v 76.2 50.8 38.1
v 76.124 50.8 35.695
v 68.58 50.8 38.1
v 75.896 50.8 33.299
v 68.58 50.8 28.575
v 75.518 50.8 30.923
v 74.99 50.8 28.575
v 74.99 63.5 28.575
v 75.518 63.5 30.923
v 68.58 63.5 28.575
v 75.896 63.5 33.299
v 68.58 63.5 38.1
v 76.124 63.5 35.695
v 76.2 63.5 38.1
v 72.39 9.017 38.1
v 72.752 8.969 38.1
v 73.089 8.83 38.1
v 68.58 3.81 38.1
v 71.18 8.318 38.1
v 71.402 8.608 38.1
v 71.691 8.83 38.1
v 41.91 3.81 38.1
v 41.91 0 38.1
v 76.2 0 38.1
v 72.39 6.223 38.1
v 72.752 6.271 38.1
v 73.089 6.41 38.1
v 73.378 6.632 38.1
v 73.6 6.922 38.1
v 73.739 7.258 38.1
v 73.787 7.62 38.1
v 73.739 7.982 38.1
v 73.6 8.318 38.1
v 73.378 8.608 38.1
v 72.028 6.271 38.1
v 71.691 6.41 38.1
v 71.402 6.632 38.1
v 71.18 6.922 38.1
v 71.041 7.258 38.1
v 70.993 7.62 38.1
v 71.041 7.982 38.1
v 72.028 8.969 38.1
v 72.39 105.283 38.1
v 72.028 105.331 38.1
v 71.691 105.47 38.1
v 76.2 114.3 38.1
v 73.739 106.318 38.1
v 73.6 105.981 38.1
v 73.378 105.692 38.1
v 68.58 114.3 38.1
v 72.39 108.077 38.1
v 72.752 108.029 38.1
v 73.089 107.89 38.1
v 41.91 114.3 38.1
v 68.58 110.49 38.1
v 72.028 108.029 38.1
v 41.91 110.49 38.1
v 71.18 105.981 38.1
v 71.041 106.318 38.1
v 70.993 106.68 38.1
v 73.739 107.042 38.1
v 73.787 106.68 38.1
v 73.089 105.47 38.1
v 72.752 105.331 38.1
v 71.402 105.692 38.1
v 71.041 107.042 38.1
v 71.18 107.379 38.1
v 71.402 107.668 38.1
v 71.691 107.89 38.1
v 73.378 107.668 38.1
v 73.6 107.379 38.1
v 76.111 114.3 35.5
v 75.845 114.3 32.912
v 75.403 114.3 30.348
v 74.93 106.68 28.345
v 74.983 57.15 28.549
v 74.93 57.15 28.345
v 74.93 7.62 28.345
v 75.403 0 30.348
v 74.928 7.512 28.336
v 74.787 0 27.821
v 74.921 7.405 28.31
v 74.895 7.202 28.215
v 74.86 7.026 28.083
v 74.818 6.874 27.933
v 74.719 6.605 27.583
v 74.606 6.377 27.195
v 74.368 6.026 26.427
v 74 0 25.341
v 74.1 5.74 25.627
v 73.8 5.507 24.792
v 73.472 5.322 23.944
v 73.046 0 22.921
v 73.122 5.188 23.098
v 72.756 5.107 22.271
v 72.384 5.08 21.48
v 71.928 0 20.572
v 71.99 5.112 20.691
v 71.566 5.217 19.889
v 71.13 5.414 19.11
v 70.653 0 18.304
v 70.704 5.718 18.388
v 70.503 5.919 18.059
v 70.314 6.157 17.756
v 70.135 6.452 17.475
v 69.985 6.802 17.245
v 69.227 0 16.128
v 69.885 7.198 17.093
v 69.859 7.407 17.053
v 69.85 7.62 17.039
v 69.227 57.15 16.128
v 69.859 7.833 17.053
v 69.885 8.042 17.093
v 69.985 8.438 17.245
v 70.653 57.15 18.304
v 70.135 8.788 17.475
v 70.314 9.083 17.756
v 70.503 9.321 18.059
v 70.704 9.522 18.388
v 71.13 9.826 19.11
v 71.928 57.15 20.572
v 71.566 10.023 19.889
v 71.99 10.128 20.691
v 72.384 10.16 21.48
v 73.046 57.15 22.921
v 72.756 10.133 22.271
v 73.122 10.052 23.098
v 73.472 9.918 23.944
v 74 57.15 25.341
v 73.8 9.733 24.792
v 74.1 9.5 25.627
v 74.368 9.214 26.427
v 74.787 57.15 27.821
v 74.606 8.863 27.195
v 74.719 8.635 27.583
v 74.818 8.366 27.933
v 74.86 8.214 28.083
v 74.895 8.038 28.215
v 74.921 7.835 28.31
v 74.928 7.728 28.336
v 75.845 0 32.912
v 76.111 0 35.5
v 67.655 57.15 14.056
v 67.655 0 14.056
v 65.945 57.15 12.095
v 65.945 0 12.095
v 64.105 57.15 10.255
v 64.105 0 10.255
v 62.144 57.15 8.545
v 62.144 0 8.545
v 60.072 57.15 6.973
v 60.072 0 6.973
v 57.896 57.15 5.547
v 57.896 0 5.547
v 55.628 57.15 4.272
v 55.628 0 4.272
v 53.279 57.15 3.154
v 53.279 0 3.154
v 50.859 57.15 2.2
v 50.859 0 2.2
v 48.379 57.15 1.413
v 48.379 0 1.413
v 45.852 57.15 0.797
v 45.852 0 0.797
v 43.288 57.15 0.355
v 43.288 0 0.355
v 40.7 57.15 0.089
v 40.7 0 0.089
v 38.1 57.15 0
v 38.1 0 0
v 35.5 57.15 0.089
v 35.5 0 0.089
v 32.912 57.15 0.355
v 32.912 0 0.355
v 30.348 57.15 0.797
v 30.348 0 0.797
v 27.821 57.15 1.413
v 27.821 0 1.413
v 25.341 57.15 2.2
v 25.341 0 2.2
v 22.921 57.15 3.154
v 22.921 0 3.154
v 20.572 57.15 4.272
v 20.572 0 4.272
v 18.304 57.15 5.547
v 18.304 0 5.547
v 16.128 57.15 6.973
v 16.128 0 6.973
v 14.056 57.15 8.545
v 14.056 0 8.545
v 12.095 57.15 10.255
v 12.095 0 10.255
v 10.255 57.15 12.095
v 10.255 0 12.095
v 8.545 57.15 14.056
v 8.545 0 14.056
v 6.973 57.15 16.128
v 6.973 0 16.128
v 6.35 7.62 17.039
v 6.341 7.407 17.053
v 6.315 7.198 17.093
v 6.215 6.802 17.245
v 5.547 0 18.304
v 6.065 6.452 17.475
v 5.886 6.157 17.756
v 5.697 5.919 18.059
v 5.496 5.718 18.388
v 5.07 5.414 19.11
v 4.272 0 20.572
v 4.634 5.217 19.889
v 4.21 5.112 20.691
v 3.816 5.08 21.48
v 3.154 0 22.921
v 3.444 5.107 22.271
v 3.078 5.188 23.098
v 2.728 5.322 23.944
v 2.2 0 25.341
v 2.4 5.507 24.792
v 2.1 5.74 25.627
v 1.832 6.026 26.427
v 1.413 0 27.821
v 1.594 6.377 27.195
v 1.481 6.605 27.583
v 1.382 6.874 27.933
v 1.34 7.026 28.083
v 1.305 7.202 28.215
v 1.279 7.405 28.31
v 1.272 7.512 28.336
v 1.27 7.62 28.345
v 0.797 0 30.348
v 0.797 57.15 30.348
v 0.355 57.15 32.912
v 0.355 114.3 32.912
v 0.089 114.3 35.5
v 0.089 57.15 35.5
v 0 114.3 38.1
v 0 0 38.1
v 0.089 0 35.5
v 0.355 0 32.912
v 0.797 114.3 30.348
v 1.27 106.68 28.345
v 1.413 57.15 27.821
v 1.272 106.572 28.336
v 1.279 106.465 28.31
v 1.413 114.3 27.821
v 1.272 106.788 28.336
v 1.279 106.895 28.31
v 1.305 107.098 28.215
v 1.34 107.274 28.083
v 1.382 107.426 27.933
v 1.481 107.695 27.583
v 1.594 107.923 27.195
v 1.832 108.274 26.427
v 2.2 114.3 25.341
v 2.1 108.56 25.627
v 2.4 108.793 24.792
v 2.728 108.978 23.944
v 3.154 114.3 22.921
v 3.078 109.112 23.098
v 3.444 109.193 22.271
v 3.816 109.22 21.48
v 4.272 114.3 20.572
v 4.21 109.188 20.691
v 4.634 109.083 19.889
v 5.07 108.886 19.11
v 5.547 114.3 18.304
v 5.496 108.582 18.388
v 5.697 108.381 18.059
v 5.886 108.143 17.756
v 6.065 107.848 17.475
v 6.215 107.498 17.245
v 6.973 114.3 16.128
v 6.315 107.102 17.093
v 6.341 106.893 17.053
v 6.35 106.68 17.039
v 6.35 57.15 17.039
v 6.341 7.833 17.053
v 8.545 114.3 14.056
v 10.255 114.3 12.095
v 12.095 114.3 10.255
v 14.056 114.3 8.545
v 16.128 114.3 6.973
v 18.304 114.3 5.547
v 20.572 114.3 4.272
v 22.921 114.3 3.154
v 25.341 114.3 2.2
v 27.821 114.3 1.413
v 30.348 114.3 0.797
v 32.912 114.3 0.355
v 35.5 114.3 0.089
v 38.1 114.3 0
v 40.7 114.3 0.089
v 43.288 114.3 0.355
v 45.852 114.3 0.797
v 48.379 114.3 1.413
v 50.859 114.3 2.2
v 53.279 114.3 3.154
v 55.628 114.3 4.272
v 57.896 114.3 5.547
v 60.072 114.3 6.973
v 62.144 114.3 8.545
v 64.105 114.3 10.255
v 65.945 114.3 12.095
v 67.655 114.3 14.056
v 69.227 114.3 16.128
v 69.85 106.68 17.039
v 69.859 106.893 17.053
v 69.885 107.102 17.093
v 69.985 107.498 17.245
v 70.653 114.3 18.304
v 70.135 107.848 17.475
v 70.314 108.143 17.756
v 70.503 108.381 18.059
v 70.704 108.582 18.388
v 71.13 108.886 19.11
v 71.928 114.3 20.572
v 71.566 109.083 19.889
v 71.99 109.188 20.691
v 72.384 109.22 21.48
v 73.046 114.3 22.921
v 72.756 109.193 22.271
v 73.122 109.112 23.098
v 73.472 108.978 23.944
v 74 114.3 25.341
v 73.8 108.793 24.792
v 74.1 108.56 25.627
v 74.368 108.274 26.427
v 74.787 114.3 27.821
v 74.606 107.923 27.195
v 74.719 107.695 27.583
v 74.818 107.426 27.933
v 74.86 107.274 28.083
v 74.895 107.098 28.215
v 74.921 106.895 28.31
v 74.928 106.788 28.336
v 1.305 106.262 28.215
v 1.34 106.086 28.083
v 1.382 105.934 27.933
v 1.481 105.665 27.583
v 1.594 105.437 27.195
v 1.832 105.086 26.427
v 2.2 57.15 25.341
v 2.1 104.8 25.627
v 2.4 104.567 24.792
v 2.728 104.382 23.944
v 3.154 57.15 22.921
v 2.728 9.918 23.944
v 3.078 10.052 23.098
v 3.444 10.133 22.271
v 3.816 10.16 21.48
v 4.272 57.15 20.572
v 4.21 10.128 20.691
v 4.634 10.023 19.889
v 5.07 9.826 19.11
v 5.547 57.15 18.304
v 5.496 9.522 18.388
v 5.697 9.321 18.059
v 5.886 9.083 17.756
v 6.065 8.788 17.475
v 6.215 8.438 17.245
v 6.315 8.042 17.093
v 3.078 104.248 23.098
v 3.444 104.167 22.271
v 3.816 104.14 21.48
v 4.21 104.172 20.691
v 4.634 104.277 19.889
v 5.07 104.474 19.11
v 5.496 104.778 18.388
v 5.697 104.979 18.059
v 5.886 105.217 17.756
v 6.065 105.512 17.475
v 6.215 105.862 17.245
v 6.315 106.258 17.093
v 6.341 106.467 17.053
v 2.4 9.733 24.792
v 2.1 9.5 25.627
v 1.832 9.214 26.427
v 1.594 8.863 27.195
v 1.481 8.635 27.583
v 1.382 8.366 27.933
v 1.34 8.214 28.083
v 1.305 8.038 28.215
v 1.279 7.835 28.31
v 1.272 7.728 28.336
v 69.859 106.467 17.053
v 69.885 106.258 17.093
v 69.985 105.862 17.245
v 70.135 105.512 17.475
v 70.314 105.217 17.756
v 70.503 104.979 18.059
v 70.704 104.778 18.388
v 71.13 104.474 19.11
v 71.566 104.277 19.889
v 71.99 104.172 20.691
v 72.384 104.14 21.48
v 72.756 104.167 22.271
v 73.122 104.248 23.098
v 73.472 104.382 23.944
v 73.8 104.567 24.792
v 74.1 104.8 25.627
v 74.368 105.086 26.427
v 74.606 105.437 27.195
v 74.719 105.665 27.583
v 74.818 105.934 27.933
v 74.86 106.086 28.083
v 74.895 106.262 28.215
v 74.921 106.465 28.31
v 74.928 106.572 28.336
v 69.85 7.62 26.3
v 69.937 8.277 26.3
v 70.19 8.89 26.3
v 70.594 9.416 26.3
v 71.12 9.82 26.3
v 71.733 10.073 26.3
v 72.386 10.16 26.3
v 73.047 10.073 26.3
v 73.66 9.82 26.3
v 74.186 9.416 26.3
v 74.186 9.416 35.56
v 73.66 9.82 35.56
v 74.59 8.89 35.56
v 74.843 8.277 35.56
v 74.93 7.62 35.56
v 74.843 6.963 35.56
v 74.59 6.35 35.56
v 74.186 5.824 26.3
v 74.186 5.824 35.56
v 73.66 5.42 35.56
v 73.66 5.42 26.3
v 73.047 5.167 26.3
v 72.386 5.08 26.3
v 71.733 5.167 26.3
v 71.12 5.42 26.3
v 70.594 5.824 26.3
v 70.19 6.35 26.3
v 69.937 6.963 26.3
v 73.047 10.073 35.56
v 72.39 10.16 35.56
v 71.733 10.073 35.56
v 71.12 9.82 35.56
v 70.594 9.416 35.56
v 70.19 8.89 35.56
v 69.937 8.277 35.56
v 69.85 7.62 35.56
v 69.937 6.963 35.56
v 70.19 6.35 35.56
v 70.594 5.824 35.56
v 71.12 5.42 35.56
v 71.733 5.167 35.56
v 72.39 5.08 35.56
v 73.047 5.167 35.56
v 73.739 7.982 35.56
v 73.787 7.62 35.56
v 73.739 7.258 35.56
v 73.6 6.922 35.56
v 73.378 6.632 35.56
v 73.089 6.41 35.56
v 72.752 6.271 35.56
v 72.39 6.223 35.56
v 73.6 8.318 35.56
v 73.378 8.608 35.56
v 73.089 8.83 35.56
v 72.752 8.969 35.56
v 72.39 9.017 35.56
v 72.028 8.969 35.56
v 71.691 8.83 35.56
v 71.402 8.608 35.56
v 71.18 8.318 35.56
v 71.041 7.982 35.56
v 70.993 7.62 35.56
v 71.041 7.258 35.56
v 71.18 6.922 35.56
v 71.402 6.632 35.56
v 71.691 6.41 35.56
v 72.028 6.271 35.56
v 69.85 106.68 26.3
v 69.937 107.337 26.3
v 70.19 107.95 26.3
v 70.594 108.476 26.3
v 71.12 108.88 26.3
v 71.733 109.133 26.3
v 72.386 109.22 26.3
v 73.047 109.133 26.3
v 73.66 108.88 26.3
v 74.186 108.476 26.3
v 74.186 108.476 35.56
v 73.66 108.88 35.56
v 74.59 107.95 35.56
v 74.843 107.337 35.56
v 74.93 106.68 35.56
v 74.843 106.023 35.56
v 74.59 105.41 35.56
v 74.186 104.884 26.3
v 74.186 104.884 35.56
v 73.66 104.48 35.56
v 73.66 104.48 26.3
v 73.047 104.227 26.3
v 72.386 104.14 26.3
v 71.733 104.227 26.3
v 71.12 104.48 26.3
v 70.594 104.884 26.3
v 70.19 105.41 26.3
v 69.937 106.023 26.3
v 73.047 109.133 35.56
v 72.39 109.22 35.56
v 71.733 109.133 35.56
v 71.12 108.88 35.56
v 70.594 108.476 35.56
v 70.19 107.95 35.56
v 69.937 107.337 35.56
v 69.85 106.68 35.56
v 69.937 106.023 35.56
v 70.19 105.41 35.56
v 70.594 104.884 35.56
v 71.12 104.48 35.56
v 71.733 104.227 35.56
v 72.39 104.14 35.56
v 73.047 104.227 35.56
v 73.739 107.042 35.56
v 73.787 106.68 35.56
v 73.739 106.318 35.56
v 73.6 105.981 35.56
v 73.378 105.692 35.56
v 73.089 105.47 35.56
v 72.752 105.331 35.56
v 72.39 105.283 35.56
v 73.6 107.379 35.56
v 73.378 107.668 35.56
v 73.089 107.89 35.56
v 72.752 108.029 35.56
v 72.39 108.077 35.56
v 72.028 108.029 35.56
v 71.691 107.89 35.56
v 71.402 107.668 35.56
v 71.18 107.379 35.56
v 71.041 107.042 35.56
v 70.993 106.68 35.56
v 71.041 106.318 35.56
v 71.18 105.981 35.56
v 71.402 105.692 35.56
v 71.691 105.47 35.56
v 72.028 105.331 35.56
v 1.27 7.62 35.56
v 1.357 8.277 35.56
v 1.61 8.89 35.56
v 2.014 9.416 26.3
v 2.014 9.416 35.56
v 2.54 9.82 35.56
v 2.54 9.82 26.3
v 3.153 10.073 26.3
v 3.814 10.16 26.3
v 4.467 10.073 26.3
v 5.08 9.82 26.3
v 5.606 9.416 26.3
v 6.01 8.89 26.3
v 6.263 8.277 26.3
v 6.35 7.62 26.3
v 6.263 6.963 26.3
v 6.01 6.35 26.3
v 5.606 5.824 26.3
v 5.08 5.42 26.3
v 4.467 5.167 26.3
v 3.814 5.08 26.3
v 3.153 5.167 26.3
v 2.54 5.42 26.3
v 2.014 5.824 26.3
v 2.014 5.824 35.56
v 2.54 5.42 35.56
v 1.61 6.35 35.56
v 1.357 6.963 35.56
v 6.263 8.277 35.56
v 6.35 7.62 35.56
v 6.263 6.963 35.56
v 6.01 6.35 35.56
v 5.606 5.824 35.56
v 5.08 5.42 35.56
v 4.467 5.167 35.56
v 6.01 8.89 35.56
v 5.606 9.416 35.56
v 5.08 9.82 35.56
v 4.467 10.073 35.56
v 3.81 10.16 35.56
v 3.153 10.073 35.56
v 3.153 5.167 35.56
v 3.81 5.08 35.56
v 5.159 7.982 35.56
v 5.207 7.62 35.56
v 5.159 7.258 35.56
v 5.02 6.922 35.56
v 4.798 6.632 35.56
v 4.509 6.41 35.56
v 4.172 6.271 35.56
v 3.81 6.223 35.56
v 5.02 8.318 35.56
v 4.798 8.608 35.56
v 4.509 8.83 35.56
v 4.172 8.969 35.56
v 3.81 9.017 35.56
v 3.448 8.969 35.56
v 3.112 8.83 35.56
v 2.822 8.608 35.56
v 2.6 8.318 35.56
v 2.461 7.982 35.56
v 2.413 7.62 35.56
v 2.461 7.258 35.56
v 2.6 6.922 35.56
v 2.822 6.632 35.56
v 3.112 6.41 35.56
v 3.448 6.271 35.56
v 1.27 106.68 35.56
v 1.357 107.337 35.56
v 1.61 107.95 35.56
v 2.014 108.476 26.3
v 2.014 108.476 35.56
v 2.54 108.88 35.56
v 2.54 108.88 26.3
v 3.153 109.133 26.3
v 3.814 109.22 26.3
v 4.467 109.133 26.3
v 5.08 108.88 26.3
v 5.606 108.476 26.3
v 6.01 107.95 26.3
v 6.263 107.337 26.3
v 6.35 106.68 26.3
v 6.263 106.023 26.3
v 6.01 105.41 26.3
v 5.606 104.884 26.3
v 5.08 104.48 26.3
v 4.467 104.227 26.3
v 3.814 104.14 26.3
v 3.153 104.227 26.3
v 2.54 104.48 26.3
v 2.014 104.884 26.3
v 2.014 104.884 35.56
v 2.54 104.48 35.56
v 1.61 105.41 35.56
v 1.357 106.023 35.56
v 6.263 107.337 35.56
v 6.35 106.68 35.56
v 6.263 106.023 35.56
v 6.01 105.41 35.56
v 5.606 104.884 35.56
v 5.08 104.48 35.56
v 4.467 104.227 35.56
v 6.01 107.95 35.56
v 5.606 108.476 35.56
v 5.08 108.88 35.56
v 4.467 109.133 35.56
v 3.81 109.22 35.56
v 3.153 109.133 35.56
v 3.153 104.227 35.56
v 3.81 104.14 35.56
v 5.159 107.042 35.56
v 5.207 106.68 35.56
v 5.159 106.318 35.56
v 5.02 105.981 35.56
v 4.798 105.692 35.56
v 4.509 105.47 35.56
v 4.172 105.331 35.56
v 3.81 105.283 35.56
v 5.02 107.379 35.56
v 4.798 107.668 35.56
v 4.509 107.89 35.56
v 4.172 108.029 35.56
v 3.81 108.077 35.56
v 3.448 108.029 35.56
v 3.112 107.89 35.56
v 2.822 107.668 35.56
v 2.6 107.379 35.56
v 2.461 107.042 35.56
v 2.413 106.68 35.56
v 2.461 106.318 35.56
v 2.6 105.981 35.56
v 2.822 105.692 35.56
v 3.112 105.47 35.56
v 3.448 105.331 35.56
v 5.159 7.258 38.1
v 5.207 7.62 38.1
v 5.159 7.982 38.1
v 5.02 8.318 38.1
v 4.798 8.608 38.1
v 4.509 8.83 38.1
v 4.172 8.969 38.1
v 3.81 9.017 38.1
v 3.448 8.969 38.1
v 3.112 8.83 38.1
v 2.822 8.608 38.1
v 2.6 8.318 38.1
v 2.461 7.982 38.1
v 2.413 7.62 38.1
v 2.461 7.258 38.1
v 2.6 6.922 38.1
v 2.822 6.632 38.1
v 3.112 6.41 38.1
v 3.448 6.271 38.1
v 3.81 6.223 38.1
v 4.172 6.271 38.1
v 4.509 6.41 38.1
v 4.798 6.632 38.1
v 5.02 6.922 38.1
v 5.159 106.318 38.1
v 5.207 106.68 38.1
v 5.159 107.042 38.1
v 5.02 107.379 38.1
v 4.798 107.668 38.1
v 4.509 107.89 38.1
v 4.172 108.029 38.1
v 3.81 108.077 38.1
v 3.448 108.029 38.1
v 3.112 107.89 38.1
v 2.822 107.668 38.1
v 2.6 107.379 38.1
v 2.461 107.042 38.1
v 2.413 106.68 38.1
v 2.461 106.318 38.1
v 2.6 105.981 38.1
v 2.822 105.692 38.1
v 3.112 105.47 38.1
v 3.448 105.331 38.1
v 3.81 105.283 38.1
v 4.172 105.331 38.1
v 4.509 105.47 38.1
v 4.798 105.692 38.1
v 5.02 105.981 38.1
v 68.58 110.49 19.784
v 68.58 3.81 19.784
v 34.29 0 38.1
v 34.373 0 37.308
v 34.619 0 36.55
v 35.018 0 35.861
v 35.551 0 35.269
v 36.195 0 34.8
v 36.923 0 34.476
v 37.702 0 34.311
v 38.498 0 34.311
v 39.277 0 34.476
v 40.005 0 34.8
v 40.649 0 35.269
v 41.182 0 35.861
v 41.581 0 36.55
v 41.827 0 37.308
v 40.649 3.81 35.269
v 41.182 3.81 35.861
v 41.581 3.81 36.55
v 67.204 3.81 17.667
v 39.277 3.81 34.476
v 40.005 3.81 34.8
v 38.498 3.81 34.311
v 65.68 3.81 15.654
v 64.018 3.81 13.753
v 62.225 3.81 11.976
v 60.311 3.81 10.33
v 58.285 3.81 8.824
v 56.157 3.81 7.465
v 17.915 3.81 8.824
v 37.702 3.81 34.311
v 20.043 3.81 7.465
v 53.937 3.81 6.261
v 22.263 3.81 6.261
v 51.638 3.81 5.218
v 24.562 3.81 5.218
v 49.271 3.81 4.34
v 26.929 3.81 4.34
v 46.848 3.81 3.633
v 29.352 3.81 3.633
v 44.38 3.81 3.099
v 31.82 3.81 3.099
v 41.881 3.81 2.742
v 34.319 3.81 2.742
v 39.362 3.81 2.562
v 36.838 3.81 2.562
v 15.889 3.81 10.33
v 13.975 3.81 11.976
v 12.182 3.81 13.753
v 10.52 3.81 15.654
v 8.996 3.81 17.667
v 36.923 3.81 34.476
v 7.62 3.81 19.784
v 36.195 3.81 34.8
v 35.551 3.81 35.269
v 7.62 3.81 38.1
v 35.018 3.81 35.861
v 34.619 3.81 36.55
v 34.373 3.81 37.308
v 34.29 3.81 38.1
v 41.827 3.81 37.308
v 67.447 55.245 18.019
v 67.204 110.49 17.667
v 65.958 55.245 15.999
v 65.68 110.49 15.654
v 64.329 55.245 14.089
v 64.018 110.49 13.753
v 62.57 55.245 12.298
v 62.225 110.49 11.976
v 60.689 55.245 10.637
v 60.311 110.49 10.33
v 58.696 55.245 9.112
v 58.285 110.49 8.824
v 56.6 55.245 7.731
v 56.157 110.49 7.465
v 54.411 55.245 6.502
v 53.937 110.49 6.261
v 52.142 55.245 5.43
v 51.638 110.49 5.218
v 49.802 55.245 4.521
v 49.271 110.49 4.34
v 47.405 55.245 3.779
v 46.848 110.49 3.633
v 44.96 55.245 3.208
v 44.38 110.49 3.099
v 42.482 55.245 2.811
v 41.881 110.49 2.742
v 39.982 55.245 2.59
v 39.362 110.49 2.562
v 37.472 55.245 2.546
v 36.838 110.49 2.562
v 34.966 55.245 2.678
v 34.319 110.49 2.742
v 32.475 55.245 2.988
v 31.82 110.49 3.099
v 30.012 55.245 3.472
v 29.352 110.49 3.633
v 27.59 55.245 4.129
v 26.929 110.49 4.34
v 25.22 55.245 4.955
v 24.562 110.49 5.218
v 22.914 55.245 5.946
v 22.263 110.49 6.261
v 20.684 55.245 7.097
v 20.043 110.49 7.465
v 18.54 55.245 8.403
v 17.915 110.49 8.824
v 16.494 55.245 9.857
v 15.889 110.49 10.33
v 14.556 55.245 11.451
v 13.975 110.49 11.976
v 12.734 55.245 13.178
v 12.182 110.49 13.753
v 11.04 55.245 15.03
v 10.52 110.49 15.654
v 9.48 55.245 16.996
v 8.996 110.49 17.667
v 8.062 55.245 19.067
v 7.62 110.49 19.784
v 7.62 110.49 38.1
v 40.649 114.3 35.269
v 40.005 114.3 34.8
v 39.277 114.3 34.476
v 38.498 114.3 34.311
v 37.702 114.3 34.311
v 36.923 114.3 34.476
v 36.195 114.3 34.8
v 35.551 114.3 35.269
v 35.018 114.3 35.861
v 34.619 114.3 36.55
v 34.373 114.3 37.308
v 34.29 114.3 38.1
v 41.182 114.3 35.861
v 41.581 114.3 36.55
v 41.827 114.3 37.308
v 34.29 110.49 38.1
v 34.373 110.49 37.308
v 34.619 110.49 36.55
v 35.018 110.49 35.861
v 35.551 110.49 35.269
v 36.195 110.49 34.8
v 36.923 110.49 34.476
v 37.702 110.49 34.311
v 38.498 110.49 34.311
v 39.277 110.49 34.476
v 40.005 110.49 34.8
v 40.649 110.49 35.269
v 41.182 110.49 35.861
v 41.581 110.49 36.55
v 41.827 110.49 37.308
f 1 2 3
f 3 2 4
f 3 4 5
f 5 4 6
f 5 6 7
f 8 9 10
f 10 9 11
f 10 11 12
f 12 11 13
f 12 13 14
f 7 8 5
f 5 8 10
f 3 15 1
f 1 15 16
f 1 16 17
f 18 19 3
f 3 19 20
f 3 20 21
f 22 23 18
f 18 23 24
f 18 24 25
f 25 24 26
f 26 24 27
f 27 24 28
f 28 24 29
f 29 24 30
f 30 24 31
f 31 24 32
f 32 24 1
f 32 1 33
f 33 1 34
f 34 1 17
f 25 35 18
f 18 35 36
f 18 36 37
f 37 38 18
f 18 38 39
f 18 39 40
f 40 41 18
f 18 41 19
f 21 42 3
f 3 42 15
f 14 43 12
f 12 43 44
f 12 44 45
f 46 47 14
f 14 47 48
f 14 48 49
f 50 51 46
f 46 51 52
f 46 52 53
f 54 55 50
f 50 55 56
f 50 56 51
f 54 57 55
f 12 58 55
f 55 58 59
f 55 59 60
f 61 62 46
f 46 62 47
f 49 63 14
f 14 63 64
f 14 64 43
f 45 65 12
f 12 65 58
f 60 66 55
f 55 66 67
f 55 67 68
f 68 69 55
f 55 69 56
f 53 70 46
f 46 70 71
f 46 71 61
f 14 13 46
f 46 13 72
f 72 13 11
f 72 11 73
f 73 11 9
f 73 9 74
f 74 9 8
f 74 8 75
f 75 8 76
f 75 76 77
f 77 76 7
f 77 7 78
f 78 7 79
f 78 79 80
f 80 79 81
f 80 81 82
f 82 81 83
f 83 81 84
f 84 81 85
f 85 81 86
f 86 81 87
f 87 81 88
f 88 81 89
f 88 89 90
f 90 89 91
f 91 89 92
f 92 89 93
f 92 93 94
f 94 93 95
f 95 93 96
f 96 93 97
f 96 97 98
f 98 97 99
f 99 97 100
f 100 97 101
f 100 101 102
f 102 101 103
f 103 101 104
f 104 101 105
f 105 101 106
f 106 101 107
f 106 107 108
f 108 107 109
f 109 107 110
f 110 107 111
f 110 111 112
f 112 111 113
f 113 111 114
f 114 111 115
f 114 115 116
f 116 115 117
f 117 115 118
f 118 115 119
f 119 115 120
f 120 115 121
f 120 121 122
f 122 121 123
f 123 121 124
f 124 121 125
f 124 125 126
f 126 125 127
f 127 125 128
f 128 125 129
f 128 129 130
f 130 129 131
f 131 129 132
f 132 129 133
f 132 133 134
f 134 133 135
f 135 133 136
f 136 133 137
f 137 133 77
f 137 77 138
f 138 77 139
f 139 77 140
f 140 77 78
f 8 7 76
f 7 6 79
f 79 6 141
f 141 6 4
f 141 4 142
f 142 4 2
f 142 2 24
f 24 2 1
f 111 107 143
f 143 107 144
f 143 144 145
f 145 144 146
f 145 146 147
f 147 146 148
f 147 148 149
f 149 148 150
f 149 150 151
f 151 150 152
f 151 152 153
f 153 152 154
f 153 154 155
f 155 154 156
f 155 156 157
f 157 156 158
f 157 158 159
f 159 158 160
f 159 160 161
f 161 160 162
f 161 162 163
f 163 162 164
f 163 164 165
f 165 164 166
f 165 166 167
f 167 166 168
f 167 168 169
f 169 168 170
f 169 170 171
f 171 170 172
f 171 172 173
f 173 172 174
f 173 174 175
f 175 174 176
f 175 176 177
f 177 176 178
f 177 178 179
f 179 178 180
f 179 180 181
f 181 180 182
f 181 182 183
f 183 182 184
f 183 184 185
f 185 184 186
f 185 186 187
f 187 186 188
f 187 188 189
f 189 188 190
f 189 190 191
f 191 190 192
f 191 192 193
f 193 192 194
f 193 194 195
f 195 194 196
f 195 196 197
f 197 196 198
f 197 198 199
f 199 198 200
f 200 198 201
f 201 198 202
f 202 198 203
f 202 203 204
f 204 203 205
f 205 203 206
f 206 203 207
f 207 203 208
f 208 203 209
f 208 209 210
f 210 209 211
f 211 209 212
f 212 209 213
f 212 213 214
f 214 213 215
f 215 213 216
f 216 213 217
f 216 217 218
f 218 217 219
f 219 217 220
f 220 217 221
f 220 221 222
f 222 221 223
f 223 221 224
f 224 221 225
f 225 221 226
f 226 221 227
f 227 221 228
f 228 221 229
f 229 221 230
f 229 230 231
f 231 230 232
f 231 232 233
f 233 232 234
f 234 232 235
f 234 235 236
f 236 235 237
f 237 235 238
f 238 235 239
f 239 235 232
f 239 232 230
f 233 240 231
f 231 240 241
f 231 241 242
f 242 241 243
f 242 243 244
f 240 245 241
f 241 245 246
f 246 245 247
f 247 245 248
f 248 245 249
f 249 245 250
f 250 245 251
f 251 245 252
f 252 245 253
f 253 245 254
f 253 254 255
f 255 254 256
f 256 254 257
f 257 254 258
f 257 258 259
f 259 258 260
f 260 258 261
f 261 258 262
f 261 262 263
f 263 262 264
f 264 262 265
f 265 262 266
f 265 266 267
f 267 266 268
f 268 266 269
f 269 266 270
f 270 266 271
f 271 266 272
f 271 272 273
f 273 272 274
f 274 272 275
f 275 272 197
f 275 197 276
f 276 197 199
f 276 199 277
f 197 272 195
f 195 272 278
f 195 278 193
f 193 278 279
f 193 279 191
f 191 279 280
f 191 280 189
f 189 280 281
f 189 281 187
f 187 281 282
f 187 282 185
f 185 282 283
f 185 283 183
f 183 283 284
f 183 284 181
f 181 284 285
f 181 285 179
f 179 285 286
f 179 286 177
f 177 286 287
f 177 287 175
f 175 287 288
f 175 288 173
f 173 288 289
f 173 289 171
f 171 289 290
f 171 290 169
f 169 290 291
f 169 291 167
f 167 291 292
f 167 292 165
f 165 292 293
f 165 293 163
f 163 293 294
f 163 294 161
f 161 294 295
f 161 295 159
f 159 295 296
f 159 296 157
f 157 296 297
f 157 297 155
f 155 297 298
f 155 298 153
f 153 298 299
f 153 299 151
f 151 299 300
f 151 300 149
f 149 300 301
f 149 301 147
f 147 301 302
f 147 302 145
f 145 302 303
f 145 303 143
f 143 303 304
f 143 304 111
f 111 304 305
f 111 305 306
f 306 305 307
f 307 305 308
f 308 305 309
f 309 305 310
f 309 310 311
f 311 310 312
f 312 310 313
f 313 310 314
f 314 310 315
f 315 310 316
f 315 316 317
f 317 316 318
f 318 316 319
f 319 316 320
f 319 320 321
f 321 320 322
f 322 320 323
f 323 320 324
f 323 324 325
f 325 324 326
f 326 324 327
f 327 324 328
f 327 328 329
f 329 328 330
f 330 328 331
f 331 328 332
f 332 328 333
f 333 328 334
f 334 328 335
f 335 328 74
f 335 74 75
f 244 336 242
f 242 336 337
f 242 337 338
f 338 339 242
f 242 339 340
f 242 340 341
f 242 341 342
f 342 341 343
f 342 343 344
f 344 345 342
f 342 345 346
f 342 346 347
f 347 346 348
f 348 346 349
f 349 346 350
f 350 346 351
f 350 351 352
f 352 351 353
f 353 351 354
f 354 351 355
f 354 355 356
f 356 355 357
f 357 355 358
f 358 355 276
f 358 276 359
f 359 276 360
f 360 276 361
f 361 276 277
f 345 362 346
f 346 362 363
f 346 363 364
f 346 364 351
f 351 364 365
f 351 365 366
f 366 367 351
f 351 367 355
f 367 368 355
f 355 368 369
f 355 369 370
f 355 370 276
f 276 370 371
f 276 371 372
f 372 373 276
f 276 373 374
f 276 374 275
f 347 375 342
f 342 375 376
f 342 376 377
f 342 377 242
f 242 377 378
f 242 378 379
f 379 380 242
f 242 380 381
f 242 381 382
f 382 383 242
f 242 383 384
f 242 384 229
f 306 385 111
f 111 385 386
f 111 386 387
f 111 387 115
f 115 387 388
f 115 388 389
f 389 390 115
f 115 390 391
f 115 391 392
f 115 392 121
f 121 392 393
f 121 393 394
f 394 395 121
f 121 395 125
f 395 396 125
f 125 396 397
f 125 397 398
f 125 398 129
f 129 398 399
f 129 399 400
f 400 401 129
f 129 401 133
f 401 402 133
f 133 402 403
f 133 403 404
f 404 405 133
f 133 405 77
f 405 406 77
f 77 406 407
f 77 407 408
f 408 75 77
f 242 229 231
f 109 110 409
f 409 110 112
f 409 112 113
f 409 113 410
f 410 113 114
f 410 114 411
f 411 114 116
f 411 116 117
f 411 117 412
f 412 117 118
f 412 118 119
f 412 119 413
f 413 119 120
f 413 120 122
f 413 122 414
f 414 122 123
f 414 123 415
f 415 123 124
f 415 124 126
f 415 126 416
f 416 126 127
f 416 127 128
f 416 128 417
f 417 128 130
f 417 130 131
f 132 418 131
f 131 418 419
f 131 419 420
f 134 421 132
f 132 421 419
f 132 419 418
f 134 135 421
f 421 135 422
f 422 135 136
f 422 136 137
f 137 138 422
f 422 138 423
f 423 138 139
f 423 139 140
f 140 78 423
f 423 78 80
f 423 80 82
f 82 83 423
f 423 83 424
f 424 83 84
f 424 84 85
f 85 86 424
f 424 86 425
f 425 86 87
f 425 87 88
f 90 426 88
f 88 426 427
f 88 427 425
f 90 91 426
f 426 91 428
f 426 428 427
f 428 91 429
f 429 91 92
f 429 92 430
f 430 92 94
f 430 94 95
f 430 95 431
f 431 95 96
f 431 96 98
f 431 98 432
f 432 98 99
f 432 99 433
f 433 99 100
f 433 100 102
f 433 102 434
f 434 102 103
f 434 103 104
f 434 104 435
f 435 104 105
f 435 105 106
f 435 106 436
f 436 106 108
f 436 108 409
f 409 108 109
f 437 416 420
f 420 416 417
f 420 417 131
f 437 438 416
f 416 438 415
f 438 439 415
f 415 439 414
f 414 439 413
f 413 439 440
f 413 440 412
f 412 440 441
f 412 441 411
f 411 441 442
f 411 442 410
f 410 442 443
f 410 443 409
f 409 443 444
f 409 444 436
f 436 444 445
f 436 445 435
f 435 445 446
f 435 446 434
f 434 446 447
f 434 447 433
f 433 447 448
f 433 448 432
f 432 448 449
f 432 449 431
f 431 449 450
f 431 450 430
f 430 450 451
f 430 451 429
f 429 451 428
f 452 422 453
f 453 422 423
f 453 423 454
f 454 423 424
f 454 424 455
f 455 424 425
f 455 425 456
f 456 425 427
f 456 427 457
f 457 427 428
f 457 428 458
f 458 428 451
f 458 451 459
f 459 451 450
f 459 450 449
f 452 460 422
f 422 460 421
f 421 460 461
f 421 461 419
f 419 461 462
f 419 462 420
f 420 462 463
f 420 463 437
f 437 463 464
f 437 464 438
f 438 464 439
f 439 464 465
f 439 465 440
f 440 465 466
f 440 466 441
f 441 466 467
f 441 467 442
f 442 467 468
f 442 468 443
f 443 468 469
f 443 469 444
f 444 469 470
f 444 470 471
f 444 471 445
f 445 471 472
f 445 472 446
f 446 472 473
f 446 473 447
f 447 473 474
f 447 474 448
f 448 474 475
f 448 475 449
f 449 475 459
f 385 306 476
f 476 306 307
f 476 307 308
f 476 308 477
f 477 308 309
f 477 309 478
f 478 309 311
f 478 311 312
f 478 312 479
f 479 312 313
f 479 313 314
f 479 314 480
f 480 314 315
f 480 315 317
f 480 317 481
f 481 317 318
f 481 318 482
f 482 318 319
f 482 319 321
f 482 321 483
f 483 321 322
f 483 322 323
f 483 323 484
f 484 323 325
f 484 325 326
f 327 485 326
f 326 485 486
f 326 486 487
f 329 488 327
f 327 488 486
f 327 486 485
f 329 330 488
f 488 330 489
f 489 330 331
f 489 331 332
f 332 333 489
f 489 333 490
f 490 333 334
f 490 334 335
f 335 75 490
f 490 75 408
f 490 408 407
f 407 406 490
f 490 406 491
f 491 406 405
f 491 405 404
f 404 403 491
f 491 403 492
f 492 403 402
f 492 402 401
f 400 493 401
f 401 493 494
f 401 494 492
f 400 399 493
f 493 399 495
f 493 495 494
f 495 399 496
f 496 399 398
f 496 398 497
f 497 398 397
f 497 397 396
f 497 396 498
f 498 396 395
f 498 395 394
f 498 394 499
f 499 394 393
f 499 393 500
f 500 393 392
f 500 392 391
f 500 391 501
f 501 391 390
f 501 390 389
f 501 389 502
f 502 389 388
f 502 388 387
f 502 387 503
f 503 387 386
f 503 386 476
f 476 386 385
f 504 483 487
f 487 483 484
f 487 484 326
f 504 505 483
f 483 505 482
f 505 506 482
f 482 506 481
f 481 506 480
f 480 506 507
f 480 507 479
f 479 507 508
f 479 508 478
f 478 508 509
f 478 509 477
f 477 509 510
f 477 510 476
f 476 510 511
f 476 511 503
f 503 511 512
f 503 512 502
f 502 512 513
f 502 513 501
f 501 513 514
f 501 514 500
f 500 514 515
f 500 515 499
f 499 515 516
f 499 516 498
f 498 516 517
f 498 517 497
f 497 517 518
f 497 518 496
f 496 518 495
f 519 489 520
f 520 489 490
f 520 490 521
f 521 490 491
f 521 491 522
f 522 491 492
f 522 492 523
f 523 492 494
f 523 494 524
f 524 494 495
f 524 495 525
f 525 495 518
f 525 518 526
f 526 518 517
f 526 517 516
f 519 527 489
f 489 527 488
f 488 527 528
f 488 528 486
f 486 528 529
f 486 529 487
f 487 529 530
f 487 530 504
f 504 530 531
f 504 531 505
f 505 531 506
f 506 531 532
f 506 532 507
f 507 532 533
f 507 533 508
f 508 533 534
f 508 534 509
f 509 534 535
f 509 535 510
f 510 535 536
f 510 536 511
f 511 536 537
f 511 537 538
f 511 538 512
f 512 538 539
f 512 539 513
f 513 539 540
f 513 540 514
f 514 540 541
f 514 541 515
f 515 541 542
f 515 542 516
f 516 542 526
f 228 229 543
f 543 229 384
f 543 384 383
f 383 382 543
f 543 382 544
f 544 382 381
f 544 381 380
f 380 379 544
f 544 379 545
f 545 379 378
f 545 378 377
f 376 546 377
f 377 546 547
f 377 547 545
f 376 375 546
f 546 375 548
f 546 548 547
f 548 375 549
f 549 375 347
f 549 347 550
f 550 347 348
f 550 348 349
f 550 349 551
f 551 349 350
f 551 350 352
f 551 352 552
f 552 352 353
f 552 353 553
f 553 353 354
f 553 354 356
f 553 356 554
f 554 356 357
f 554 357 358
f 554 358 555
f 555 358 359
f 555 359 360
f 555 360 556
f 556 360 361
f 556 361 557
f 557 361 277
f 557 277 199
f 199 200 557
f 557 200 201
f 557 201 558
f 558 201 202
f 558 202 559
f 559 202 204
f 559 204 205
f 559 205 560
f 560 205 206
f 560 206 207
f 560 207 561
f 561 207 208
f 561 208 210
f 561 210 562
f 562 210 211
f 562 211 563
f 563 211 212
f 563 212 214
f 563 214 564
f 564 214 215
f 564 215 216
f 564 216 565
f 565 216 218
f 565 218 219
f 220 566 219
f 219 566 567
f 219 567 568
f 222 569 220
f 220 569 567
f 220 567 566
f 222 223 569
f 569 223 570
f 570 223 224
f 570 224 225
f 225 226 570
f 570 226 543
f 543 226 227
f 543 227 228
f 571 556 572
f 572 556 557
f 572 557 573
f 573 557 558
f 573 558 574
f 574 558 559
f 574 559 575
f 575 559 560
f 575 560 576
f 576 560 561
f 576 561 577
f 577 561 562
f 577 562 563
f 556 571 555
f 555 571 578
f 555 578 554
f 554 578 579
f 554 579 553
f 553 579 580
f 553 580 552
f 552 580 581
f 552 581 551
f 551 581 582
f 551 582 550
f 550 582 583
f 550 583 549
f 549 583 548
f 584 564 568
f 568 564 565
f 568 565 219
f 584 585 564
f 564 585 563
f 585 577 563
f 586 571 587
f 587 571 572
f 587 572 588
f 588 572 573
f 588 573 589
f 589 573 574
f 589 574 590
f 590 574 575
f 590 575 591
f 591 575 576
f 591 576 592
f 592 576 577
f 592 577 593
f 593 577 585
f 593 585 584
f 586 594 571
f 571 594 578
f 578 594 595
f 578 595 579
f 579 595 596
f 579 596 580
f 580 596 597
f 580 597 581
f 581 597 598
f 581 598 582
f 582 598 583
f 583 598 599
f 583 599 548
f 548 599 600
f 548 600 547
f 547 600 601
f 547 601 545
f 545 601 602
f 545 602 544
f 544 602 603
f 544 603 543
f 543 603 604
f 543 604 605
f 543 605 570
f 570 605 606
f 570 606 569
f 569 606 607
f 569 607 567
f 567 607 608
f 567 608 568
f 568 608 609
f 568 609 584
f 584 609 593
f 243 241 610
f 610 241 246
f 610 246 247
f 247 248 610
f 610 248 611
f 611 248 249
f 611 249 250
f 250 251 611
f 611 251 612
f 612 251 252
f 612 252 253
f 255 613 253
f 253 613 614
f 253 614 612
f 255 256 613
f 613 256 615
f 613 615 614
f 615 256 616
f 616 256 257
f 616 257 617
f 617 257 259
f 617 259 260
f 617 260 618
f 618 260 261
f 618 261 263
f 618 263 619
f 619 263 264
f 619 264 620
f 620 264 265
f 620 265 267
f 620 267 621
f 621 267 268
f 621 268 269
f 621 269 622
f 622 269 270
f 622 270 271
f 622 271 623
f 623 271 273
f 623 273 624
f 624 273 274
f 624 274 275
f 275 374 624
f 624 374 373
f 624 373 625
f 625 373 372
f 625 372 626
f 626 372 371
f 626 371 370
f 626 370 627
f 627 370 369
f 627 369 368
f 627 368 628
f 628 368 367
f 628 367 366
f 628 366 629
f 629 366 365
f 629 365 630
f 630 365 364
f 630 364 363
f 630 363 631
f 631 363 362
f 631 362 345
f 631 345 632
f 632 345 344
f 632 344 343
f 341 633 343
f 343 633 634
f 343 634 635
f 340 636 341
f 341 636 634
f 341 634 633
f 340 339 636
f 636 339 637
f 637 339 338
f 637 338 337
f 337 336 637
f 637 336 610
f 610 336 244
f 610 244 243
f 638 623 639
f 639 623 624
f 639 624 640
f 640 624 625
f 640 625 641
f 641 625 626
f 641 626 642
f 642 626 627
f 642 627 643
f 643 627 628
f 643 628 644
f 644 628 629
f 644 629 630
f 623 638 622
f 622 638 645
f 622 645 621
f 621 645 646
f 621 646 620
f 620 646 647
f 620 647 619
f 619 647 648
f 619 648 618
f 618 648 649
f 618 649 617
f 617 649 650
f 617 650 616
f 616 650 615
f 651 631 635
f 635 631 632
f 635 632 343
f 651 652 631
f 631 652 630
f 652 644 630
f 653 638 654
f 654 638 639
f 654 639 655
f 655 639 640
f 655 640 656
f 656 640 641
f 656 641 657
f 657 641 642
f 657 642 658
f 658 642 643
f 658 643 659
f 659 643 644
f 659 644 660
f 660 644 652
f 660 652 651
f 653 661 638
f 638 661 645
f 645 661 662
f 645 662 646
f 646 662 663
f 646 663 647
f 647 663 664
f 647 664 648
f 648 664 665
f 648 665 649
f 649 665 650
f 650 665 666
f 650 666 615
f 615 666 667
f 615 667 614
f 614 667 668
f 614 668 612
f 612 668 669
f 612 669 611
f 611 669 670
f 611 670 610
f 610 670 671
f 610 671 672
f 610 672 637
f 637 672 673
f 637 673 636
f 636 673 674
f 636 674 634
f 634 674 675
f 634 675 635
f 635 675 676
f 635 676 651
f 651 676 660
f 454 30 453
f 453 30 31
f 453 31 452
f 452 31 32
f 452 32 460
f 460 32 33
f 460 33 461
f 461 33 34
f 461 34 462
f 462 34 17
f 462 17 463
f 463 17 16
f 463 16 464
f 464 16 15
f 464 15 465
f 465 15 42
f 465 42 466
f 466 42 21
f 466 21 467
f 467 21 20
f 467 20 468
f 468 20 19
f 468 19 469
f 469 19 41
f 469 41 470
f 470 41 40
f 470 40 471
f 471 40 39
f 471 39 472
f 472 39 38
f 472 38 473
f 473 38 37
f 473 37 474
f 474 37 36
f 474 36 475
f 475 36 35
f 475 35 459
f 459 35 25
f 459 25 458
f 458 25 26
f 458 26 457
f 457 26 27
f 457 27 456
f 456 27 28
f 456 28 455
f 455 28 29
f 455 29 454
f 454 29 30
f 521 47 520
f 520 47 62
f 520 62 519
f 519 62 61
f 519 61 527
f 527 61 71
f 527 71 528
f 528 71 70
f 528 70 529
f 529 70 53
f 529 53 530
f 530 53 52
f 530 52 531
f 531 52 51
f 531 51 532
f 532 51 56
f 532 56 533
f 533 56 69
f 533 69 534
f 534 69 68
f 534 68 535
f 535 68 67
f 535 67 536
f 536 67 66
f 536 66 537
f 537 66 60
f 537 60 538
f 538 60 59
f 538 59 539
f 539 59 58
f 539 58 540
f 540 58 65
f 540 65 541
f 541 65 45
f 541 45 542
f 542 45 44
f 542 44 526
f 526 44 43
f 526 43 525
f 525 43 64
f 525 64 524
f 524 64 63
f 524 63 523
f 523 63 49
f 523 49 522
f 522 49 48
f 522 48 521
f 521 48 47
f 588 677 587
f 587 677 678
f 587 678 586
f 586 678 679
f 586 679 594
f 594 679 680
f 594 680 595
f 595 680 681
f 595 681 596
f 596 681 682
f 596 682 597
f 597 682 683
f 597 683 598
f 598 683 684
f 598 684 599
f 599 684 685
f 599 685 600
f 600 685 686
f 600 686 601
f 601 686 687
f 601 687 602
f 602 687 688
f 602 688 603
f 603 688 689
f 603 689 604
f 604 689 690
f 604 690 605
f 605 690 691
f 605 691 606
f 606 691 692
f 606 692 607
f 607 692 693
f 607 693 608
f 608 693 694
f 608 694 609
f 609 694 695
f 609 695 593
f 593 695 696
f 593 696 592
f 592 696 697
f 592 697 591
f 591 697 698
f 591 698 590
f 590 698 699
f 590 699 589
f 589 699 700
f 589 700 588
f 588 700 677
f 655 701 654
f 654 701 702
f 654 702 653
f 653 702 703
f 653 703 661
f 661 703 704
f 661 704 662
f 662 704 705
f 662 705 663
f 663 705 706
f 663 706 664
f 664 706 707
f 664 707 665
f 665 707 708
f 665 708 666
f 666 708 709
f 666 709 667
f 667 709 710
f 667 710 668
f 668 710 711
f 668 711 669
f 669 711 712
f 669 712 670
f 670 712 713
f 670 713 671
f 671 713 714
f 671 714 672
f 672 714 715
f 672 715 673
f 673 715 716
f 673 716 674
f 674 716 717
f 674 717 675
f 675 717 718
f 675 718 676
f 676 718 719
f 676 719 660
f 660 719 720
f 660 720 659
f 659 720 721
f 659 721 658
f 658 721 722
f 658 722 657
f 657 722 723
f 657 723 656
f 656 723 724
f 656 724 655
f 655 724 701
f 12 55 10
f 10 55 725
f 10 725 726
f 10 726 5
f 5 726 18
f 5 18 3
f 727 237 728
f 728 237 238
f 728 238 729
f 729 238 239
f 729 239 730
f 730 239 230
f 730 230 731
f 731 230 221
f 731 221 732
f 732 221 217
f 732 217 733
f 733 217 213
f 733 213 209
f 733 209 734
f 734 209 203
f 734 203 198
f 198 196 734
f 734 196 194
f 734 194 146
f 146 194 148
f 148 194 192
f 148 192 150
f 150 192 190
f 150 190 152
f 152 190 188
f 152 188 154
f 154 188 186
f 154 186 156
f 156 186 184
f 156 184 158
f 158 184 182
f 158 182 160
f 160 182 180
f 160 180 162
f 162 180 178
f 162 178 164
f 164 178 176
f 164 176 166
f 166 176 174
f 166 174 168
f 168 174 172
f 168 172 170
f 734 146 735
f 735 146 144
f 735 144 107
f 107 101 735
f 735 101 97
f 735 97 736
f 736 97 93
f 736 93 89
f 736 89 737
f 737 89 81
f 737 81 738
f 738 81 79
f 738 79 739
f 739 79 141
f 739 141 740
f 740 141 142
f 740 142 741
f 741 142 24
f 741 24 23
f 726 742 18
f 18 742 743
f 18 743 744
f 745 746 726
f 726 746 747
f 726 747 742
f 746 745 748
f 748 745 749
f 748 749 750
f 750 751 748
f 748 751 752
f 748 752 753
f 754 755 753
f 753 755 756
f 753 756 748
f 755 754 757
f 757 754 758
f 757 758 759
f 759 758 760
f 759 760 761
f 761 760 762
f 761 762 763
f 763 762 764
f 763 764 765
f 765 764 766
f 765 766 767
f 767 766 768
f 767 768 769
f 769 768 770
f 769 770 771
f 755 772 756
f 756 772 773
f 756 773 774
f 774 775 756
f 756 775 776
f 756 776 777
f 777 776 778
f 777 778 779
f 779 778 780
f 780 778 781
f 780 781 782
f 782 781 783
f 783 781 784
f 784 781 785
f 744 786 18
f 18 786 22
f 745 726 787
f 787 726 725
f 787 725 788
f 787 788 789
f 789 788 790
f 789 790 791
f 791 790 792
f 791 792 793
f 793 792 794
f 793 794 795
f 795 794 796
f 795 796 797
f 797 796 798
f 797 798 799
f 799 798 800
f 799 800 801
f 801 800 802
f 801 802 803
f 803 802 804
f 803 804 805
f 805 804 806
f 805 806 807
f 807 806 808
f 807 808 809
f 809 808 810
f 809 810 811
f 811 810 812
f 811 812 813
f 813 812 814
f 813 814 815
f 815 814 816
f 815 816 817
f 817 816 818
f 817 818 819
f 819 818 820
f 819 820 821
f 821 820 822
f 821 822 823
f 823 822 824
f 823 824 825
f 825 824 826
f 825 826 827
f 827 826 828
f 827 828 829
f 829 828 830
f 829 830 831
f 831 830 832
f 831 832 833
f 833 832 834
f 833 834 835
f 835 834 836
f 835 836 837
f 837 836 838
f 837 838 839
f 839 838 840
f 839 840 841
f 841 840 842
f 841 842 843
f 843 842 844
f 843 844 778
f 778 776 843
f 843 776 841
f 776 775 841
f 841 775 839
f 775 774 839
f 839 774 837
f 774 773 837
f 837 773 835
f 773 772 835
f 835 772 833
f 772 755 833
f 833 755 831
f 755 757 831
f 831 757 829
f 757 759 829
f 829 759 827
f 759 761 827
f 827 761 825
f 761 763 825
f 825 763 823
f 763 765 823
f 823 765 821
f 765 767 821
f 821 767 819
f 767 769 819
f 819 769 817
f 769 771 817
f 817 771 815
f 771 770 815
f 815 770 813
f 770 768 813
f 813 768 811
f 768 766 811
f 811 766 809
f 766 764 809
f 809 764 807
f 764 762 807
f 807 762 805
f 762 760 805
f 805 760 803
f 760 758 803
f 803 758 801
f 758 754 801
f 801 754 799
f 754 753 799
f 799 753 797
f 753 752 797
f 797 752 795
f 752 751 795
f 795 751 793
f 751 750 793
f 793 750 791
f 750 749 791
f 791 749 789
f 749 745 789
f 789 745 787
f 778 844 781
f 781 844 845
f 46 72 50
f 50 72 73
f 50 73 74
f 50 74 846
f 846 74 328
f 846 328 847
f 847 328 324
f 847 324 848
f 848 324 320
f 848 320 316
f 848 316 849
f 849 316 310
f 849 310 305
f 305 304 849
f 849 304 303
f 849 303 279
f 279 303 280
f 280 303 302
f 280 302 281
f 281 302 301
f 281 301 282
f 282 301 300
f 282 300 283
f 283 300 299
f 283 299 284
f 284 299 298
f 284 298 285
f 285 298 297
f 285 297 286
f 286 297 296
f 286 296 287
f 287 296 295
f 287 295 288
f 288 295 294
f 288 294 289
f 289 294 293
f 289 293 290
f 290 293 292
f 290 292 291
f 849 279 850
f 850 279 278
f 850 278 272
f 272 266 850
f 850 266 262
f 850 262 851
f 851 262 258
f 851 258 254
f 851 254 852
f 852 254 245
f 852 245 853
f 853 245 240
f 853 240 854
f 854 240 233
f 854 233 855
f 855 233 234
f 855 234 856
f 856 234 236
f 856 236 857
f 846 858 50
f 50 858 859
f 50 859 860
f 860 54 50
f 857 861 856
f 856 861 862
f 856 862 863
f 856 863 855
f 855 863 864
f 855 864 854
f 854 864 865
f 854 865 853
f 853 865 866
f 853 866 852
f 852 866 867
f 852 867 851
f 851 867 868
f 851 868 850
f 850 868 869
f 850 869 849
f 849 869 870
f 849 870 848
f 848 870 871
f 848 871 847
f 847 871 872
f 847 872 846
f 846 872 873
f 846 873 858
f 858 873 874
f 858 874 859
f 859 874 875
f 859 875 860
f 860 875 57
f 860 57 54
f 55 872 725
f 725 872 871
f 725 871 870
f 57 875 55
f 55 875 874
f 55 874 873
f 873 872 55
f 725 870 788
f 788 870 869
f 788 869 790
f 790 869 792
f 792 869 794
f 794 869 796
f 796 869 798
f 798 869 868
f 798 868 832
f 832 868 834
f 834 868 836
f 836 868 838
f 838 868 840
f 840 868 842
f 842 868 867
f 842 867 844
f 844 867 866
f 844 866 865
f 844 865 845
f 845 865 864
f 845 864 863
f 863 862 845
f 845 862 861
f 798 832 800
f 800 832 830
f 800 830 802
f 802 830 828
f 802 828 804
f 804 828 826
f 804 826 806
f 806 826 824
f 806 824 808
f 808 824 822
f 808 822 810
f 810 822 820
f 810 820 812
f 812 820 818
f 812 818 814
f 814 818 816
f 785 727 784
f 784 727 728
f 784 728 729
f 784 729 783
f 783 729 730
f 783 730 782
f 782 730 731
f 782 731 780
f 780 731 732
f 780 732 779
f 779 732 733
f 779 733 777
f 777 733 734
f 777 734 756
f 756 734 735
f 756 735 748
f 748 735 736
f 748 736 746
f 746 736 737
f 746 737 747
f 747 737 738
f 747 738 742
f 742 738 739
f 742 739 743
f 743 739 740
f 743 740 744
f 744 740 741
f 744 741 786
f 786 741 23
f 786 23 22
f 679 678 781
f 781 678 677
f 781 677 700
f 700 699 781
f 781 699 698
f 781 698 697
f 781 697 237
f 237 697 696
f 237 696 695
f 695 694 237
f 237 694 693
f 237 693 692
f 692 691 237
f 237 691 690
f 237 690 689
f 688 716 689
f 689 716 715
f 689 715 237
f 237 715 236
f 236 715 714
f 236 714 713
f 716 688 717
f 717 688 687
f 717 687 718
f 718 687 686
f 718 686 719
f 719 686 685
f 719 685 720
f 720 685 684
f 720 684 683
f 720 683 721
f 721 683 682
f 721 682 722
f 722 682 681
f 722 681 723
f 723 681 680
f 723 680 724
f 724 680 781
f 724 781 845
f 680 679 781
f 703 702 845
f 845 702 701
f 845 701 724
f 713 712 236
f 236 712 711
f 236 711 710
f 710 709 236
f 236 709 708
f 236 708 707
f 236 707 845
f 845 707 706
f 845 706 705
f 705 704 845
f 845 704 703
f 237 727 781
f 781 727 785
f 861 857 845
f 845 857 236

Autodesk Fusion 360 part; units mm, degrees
sketch "Sketch1" plane through (0, 0, 0) normal (0, 1, 0) x (1, 0, 0)
  circle A0 centre (38.1, -38.1) radius 38.1
  circle A1 centre (38.1, -38.1) radius 35.56
  circle A2 centre (38.1, -38.1) radius 3.81
  line L0 (38.1, -38.1) -> (0, -38.1)
  line L1 (38.1, -38.1) -> (76.2, -38.1)
  dimension "d1" = 76.2
  dimension "d2" = 71.12
  dimension "d4" = 7.62
extrude "Extrude1" add sketch "Sketch1" along normal blind 3.81 contours A1 A2 L0 L1 picked at (13.2699, -36.1441) makes body 1
extrude "Extrude2" add sketch "Sketch1" along normal blind 3.81 from surface at 110.49 separate body contours A1 A2 L0 L1 picked at (13.2699, -36.1441) makes body 2
extrude "Extrude3" add sketch "Sketch1" along normal blind 114.3 contours A0 A1 L0 L1 picked at (75.2115, -36.2072) bodies 1 2
sketch "Sketch2" plane through (0, 0, 38.1) normal (0, 0, 1) x (-1, 0, 0)
  line L0 (0, 0) -> (-34.29, 0)
  line L1 (-34.29, 0) -> (-34.29, -3.81)
  line L2 (-34.29, -3.81) -> (-2.54, -3.81)
  line L3 (-2.54, -3.81) -> (-2.54, -110.49)
  line L4 (-2.54, -110.49) -> (-34.29, -110.49)
  line L5 (-34.29, -110.49) -> (-34.29, -114.3)
  line L6 (-34.29, -114.3) -> (0, -114.3)
  line L7 (0, -114.3) -> (0, 0)
  line L8 (0, 0) -> (-7.62, 0)
  line L9 (-7.62, 0) -> (-7.62, -114.3)
  line L10 (-7.62, -114.3) -> (0, -114.3)
  line L11 (0, -114.3) -> (0, 0)
  line L12 (-76.2, 0) -> (-68.58, 0)
  line L13 (-68.58, 0) -> (-68.58, -114.3)
  line L14 (-68.58, -114.3) -> (-76.2, -114.3)
  line L15 (-76.2, -114.3) -> (-76.2, 0)
  dimension "d12" = 7.62
  dimension "d13" = 7.62
extrude "Extrude4" add sketch "Sketch2" against normal blind 27.94 contours L0 L2 L3 L4 L6 L7 L8 L9 L10 L11 | L2 L3 L4 L9 | L12 L13 L14 L15 bodies 1
extrude "Extrude5" cut sketch "Sketch1" along normal blind 121.92 contours A0 A1 L0 L1 | A1 A2 L0 L1 picked at (75.2115, -36.2072) picked at (13.2699, -36.1441) keep common part bodies 1
sketch "Sketch3" plane through (0, 0, 38.1) normal (0, 0, 1) x (-1, 0, 0)
  line L0 (0, 0) -> (-34.29, 0)
  line L1 (-34.29, 0) -> (-34.29, -3.81)
  line L2 (-34.29, -3.81) -> (-7.62, -3.81)
  line L3 (-7.62, -3.81) -> (-7.62, -110.49)
  line L4 (-7.62, -110.49) -> (-34.29, -110.49)
  line L5 (-34.29, -110.49) -> (-34.29, -114.3)
  line L6 (-34.29, -114.3) -> (0, -114.3)
  line L7 (0, -114.3) -> (0, 0)
  circle A0 centre (-3.81, -7.62) radius 2.54
  circle A1 centre (-3.81, -7.62) radius 1.397
  circle A2 centre (-72.39, -7.62) radius 1.397
  circle A3 centre (-72.39, -7.62) radius 2.54
  circle A4 centre (-3.81, -106.68) radius 1.397
  circle A5 centre (-3.81, -106.68) radius 2.54
  circle A6 centre (-72.39, -106.68) radius 1.397
  circle A7 centre (-72.39, -106.68) radius 2.54
  dimension "d18" = 5.08
  dimension "d19" = 7.62
  dimension "d20" = 2.794
  dimension "d23" = -68.58
  dimension "d24" = -99.06
extrude "Extrude6" cut sketch "Sketch3" against normal blind 43.18 contours A1 | A2 | A4 | A6 bodies 1
extrude "Extrude7" cut sketch "Sketch3" against normal blind 25.4 from surface at -2.54 contours A0 | A3 | A5 | A7 bodies 1
sketch "Sketch4" plane through (68.58, 0, 0) normal (-1, 0, 0) x (0, -1, 0)
  line L0 (-3.81, 19.7838) -> (-3.81, 38.1)
  line L1 (-3.81, 38.1) -> (-110.49, 38.1)
  line L2 (-110.49, 38.1) -> (-110.49, 19.7838)
  line L3 (-110.49, 19.7838) -> (-3.81, 19.7838)
  line L4 (-50.8, 38.1) -> (-63.5, 38.1)
  line L5 (-63.5, 38.1) -> (-63.5, 28.575)
  line L6 (-63.5, 28.575) -> (-50.8, 28.575)
  line L7 (-50.8, 28.575) -> (-50.8, 38.1)
  line L8 (0, 38.1) -> (0, 0)
  dimension "d30" = 12.7
  dimension "d31" = 50.8
  dimension "d32" = 9.525
extrude "Extrude8" cut sketch "Sketch4" against normal blind 7.62 contours L1 L4 L5 L6 L7 bodies 1
